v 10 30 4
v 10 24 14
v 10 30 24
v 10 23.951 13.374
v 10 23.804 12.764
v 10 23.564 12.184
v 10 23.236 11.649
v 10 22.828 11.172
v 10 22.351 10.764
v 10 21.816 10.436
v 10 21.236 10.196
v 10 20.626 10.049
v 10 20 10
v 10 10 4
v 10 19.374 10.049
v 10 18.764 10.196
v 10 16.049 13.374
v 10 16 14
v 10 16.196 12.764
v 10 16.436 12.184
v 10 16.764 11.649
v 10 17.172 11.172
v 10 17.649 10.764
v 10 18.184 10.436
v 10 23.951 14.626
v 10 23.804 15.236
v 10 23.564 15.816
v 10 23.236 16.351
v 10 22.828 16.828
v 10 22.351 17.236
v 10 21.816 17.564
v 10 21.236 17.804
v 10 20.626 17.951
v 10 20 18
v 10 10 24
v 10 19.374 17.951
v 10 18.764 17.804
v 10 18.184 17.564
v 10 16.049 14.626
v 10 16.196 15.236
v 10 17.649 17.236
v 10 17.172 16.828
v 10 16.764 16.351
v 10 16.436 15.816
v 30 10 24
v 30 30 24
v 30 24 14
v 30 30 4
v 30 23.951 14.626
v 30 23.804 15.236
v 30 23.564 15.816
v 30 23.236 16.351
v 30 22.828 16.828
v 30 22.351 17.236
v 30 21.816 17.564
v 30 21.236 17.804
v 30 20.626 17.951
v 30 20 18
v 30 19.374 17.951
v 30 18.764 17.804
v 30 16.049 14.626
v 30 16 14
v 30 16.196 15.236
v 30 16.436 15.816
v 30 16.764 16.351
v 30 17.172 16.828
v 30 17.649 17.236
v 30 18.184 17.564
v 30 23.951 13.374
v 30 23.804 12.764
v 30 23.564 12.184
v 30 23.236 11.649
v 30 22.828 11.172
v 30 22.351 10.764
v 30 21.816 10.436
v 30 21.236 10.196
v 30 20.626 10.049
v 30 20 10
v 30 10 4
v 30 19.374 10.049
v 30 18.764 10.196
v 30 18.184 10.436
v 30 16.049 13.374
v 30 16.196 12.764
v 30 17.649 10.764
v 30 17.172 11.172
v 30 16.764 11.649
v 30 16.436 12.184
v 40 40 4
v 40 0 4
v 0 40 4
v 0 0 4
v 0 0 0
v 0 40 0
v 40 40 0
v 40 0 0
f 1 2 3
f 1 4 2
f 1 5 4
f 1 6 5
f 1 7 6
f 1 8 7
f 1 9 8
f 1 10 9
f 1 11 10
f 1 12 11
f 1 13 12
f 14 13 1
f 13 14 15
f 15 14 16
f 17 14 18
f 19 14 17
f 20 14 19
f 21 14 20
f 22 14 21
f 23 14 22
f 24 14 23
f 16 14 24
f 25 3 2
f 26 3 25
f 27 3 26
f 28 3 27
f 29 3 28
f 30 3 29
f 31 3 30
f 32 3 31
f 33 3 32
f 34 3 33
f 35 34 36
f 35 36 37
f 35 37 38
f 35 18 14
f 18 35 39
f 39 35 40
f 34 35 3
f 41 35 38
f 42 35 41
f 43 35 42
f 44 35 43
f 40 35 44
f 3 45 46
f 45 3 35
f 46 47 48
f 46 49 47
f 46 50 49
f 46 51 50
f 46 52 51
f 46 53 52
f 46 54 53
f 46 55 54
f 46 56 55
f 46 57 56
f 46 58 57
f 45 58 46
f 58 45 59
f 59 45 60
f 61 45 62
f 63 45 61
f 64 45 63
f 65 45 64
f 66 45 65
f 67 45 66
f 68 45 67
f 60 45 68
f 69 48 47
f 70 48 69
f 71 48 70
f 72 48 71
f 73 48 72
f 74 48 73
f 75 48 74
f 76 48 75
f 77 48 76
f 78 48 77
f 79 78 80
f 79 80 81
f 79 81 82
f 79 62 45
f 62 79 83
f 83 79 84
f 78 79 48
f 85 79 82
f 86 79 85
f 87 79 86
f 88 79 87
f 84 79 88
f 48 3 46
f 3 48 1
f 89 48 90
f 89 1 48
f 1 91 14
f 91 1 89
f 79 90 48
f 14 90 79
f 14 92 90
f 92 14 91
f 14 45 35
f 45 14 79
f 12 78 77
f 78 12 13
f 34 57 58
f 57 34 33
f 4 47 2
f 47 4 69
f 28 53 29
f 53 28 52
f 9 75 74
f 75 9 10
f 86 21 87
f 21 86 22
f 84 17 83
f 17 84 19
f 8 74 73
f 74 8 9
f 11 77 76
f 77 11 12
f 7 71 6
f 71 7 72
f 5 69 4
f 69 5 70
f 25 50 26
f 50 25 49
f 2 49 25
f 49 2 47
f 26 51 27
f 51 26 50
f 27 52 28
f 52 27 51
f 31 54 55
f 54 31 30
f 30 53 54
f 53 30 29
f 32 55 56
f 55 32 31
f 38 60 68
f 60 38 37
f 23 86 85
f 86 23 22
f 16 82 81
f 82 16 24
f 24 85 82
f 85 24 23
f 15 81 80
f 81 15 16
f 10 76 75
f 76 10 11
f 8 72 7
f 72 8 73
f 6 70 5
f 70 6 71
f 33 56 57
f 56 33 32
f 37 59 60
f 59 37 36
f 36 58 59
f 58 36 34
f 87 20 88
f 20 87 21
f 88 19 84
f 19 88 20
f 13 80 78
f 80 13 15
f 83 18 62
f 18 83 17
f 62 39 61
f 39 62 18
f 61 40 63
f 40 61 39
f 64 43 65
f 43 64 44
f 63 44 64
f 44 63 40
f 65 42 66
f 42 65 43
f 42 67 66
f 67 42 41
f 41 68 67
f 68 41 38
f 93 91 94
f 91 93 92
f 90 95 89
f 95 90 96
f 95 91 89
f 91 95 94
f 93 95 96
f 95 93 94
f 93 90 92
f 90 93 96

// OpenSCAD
//placa inferior
cube ([40,40,4]);

//cubo superior con agujero
difference(){
translate([10,10,4]) cube([20,20,20]);
translate ([5,20,14]) rotate([0,90,0]) cylinder(r=4,h=30,$fn=40);
}
